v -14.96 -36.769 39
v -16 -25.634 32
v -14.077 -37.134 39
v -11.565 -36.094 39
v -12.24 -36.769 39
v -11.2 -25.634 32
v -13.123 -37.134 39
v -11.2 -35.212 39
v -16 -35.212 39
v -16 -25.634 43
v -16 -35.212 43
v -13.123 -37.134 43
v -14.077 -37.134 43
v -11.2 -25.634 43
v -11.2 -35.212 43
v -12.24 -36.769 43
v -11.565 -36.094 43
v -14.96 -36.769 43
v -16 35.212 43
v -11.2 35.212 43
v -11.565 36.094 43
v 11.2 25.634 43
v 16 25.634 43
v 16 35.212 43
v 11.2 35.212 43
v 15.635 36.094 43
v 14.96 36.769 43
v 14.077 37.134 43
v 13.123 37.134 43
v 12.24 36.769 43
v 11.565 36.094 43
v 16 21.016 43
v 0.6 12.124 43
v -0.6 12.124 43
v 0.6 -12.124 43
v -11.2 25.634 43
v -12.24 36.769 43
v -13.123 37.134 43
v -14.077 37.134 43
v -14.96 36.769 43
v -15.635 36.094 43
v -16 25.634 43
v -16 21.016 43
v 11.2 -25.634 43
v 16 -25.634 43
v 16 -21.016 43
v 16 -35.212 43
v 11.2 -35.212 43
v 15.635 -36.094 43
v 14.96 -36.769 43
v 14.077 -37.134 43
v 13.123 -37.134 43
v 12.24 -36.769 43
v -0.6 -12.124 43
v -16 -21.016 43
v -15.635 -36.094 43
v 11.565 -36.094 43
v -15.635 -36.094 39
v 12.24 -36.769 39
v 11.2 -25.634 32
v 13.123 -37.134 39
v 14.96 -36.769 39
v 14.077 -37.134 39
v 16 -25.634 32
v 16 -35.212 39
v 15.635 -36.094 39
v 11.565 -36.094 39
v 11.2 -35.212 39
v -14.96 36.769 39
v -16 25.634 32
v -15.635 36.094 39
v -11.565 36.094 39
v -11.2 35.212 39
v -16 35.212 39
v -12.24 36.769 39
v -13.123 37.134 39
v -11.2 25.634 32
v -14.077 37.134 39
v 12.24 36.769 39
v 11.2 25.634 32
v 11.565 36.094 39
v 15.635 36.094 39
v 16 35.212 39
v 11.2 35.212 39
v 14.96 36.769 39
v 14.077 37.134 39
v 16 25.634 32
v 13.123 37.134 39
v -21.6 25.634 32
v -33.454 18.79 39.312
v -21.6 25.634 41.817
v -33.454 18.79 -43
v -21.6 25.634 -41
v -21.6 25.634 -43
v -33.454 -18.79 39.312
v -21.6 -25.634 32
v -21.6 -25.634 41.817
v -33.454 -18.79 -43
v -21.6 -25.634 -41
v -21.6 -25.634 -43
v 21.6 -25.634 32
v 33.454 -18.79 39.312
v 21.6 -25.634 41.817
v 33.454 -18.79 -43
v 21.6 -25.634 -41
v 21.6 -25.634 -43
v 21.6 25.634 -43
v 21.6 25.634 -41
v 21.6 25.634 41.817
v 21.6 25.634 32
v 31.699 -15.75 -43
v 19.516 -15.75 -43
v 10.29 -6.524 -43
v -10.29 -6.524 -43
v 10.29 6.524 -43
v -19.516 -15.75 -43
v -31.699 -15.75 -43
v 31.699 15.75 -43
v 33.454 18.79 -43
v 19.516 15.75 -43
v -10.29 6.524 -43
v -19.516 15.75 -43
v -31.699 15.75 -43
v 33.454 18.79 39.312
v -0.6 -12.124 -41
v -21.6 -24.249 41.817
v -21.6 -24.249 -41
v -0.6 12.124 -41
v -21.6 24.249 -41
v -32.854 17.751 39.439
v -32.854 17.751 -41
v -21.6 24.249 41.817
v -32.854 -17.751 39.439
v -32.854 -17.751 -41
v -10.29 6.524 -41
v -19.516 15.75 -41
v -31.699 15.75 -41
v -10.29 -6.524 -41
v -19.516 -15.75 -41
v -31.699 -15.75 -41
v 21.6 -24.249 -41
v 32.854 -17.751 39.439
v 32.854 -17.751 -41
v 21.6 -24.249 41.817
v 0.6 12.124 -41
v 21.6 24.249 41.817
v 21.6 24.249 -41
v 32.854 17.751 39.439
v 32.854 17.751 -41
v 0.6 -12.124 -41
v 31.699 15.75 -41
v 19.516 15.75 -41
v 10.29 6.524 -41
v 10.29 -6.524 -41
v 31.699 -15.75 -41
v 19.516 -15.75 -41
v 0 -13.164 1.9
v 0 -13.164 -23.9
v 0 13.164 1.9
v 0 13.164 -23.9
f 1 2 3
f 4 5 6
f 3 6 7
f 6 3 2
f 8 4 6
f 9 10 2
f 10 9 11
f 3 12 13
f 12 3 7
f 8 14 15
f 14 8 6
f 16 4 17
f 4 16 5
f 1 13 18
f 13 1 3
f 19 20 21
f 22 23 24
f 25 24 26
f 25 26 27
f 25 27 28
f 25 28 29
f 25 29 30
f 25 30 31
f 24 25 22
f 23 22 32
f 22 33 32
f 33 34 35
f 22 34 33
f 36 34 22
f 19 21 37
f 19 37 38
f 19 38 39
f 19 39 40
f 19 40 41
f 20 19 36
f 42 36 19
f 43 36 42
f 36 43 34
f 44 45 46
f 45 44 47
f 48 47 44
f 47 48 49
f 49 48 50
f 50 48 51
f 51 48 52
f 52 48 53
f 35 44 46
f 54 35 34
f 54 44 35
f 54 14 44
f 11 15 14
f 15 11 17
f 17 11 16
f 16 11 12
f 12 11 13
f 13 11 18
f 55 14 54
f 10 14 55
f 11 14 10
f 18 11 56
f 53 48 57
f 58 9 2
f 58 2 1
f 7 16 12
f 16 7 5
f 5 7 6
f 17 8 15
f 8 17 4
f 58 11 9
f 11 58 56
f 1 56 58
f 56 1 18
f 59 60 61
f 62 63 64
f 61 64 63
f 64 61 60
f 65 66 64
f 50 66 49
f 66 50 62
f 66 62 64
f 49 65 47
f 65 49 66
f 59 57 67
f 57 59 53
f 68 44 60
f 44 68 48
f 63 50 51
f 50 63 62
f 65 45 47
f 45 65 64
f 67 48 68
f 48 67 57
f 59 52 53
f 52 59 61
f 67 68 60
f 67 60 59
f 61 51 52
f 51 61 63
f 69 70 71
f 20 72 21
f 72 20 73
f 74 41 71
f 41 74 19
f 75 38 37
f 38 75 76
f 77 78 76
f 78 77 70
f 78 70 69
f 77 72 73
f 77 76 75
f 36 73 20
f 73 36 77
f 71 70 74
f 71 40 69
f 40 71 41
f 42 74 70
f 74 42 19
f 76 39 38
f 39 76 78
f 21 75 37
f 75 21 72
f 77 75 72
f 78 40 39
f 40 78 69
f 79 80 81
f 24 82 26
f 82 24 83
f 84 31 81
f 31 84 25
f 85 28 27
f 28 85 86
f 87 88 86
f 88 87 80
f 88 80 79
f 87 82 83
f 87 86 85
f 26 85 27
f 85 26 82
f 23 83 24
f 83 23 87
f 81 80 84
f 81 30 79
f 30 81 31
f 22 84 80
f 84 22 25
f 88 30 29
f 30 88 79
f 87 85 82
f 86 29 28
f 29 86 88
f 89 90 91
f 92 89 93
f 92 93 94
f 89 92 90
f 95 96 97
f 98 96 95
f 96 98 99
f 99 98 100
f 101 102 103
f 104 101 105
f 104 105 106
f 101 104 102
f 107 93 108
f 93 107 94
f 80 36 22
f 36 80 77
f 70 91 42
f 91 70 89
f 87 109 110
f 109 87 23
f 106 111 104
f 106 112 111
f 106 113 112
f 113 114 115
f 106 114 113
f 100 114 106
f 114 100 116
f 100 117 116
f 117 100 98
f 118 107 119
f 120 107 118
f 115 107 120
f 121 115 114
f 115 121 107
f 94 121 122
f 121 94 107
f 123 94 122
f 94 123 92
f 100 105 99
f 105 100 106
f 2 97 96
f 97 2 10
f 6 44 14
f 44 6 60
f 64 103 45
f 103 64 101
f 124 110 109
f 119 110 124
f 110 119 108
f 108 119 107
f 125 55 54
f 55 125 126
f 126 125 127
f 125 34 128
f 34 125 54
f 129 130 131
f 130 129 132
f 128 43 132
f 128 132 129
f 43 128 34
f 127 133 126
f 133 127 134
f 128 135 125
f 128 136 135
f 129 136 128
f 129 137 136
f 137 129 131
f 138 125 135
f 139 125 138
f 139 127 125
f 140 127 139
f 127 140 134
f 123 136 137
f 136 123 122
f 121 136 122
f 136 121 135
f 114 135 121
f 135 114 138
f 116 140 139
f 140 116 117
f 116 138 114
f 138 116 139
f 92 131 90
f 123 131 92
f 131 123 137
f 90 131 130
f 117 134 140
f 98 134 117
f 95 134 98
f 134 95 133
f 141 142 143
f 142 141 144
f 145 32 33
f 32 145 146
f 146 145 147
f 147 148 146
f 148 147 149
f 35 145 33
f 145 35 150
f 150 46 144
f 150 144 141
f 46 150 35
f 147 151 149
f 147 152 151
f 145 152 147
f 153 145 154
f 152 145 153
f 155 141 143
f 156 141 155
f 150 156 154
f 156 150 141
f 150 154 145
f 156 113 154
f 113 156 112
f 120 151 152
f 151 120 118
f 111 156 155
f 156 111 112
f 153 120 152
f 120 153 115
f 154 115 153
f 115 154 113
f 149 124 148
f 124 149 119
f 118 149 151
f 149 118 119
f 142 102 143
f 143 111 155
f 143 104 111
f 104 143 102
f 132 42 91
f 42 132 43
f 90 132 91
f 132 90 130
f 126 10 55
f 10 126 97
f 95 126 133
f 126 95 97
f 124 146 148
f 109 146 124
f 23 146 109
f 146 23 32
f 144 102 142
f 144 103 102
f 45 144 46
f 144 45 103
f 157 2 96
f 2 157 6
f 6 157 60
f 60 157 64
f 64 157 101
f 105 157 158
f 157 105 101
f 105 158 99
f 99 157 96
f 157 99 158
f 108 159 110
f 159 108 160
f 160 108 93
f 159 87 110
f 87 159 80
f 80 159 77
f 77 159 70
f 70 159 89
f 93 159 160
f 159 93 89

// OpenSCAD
// file: ../lib/util.scad
left   = -1;
right  = 1;
front  = -1;
rear   = 1;
top    = 1;
bottom = -1;

x = 0;
y = 1;
z = 2;

width  = x;
depth  = y;
height = z;

inch = 25.4;

function accurate_diam(diam,sides) = 1 / cos(180/sides) / 2 * diam;

module hole(diam,len,sides=8) {
  rotate([0,0,180/sides]) {
    cylinder(r=accurate_diam(diam,sides),h=len,center=true,$fn=sides);
  }
}

module accurate_circle(diam,sides=8) {
  rotate([0,0,180/sides]) {
    circle(r=accurate_diam(diam,sides),$fn=sides);
  }
}

module debug_axes() {
  color("red") {
    translate([50,0,0]) cube([100,.2,.2],center=true);
    translate([0,50,0]) cube([.2,100,.2],center=true);
    translate([0,0,50]) cube([.2,.2,100],center=true);
  }
}

module rounded_square(width,height,diam,resolution=16) {
  hull() {
    for(x=[left,right]) {
      for(y=[front,rear]) {
        translate([x*(width/2-diam/2),y*(height/2-diam/2),0]) {
          accurate_circle(diam,resolution);
        }
      }
    }
  }
}
// main file
include <../lib/util.scad>;

module v5() {
  extrusion_width = 0.6;
  wall_thickness = extrusion_width*2;
  tile_width = 41;
  tile_height = 12;
  tile_gap = 0.5;
  num_tiles = 14;
  /*
   * 1 bee
   * 3 ants
   * 3 grasshoppers
   * 2 spiders
   * 2 beetles
   * 1 mosquito
   * 1 pillbug
   * 1 ladybug
   */
  num_columns = 2;
  base_height = 2;

  inner_diam = tile_width+tile_gap*2;
  inner_height = (round(num_tiles/num_columns))*tile_height;

  echo("tile_height: ", tile_height);
  echo("inner_height: ", inner_height);

  outer_diam = inner_diam+wall_thickness*2;
  outer_height = inner_height+base_height;

  function getCornerToCorner(diam) = 2 * (diam/2) / sqrt(3);

  inner_corner_to_corner = getCornerToCorner(inner_diam+wall_thickness);
  outer_corner_to_corner = getCornerToCorner(outer_diam);

  x_spacing = (inner_diam + wall_thickness);
  rubber_band_clip_short_height = 4;
  rubber_band_clip_height = rubber_band_clip_short_height*2+3;
  rubber_band_clip_thickness = extrusion_width*8;
  rubber_band_clip_spacing = inner_diam-rubber_band_clip_thickness-10;

  module position_stack() {
    translate([0,inner_corner_to_corner,0]) {
      children();
    }
  }

  module body() {
    hull() {
      for(x=[left,right]) {
        translate([x*x_spacing/2,0,0]) {
          hole(outer_diam,outer_height,6);
        }
      }
    }
    for(y=[front,rear]) {
      for(x=[left,right]) {
        translate([x*(rubber_band_clip_spacing/2),y*(outer_corner_to_corner),outer_height/2]) {
          hull() {
            translate([0,-y*1,-rubber_band_clip_height/2]) {
              cube([rubber_band_clip_thickness,2,rubber_band_clip_height],center=true);
            }
            translate([0,y*(rubber_band_clip_height-rubber_band_clip_short_height)*1.3,-rubber_band_clip_short_height/2]) {
              hole(rubber_band_clip_thickness,rubber_band_clip_short_height,16);
            }
          }
        }
      }
    }
  }

  module holes() {
    for(x=[left,right]) {
      translate([x*(x_spacing/2),0,0]) {
        translate([0,0,outer_height/2]) {
          hole(inner_diam,inner_height*2,6);
        }

        translate([x*outer_diam*0.1,0,-outer_height/2]) {
          hole(inner_diam*0.75,base_height*3,8);
        }

        translate([x*outer_diam*0.6,0,0]) {
          rotate([0,0,90]) {
            hole(outer_diam,outer_height*2,6);
          }
        }
      }

      translate([0,0,outer_height/2]) {
        hull() {
          translate([x*((rubber_band_clip_spacing+rubber_band_clip_thickness)/2+50),0,50]) {
            cube([100,100,100],center=true);
          }
          translate([x*(outer_diam+50),0,-tile_height/2+50]) {
            cube([100,100,100],center=true);
          }
        }
      }
    }

    for(y=[front,rear]) {
      hull() {
        translate([0,0,outer_height/2-rubber_band_clip_height-1]) {
          translate([0,y*(outer_corner_to_corner+1),0]) {
            cube([inner_diam+wall_thickness,2,2],center=true);
          }
        }
        translate([0,0,-outer_height/2+base_height+1]) {
          translate([0,y*(outer_corner_to_corner+1),0]) {
            cube([inner_diam+wall_thickness,2,2],center=true);
          }
        }
        translate([0,y*(inner_corner_to_corner*1.5+(outer_corner_to_corner-inner_corner_to_corner)),-rubber_band_clip_height]) {
          hole(inner_diam+wall_thickness,outer_height*0.3,6);
        }
      }
    }
  }

  difference() {
    body();
    holes();
  }
}

v5();
